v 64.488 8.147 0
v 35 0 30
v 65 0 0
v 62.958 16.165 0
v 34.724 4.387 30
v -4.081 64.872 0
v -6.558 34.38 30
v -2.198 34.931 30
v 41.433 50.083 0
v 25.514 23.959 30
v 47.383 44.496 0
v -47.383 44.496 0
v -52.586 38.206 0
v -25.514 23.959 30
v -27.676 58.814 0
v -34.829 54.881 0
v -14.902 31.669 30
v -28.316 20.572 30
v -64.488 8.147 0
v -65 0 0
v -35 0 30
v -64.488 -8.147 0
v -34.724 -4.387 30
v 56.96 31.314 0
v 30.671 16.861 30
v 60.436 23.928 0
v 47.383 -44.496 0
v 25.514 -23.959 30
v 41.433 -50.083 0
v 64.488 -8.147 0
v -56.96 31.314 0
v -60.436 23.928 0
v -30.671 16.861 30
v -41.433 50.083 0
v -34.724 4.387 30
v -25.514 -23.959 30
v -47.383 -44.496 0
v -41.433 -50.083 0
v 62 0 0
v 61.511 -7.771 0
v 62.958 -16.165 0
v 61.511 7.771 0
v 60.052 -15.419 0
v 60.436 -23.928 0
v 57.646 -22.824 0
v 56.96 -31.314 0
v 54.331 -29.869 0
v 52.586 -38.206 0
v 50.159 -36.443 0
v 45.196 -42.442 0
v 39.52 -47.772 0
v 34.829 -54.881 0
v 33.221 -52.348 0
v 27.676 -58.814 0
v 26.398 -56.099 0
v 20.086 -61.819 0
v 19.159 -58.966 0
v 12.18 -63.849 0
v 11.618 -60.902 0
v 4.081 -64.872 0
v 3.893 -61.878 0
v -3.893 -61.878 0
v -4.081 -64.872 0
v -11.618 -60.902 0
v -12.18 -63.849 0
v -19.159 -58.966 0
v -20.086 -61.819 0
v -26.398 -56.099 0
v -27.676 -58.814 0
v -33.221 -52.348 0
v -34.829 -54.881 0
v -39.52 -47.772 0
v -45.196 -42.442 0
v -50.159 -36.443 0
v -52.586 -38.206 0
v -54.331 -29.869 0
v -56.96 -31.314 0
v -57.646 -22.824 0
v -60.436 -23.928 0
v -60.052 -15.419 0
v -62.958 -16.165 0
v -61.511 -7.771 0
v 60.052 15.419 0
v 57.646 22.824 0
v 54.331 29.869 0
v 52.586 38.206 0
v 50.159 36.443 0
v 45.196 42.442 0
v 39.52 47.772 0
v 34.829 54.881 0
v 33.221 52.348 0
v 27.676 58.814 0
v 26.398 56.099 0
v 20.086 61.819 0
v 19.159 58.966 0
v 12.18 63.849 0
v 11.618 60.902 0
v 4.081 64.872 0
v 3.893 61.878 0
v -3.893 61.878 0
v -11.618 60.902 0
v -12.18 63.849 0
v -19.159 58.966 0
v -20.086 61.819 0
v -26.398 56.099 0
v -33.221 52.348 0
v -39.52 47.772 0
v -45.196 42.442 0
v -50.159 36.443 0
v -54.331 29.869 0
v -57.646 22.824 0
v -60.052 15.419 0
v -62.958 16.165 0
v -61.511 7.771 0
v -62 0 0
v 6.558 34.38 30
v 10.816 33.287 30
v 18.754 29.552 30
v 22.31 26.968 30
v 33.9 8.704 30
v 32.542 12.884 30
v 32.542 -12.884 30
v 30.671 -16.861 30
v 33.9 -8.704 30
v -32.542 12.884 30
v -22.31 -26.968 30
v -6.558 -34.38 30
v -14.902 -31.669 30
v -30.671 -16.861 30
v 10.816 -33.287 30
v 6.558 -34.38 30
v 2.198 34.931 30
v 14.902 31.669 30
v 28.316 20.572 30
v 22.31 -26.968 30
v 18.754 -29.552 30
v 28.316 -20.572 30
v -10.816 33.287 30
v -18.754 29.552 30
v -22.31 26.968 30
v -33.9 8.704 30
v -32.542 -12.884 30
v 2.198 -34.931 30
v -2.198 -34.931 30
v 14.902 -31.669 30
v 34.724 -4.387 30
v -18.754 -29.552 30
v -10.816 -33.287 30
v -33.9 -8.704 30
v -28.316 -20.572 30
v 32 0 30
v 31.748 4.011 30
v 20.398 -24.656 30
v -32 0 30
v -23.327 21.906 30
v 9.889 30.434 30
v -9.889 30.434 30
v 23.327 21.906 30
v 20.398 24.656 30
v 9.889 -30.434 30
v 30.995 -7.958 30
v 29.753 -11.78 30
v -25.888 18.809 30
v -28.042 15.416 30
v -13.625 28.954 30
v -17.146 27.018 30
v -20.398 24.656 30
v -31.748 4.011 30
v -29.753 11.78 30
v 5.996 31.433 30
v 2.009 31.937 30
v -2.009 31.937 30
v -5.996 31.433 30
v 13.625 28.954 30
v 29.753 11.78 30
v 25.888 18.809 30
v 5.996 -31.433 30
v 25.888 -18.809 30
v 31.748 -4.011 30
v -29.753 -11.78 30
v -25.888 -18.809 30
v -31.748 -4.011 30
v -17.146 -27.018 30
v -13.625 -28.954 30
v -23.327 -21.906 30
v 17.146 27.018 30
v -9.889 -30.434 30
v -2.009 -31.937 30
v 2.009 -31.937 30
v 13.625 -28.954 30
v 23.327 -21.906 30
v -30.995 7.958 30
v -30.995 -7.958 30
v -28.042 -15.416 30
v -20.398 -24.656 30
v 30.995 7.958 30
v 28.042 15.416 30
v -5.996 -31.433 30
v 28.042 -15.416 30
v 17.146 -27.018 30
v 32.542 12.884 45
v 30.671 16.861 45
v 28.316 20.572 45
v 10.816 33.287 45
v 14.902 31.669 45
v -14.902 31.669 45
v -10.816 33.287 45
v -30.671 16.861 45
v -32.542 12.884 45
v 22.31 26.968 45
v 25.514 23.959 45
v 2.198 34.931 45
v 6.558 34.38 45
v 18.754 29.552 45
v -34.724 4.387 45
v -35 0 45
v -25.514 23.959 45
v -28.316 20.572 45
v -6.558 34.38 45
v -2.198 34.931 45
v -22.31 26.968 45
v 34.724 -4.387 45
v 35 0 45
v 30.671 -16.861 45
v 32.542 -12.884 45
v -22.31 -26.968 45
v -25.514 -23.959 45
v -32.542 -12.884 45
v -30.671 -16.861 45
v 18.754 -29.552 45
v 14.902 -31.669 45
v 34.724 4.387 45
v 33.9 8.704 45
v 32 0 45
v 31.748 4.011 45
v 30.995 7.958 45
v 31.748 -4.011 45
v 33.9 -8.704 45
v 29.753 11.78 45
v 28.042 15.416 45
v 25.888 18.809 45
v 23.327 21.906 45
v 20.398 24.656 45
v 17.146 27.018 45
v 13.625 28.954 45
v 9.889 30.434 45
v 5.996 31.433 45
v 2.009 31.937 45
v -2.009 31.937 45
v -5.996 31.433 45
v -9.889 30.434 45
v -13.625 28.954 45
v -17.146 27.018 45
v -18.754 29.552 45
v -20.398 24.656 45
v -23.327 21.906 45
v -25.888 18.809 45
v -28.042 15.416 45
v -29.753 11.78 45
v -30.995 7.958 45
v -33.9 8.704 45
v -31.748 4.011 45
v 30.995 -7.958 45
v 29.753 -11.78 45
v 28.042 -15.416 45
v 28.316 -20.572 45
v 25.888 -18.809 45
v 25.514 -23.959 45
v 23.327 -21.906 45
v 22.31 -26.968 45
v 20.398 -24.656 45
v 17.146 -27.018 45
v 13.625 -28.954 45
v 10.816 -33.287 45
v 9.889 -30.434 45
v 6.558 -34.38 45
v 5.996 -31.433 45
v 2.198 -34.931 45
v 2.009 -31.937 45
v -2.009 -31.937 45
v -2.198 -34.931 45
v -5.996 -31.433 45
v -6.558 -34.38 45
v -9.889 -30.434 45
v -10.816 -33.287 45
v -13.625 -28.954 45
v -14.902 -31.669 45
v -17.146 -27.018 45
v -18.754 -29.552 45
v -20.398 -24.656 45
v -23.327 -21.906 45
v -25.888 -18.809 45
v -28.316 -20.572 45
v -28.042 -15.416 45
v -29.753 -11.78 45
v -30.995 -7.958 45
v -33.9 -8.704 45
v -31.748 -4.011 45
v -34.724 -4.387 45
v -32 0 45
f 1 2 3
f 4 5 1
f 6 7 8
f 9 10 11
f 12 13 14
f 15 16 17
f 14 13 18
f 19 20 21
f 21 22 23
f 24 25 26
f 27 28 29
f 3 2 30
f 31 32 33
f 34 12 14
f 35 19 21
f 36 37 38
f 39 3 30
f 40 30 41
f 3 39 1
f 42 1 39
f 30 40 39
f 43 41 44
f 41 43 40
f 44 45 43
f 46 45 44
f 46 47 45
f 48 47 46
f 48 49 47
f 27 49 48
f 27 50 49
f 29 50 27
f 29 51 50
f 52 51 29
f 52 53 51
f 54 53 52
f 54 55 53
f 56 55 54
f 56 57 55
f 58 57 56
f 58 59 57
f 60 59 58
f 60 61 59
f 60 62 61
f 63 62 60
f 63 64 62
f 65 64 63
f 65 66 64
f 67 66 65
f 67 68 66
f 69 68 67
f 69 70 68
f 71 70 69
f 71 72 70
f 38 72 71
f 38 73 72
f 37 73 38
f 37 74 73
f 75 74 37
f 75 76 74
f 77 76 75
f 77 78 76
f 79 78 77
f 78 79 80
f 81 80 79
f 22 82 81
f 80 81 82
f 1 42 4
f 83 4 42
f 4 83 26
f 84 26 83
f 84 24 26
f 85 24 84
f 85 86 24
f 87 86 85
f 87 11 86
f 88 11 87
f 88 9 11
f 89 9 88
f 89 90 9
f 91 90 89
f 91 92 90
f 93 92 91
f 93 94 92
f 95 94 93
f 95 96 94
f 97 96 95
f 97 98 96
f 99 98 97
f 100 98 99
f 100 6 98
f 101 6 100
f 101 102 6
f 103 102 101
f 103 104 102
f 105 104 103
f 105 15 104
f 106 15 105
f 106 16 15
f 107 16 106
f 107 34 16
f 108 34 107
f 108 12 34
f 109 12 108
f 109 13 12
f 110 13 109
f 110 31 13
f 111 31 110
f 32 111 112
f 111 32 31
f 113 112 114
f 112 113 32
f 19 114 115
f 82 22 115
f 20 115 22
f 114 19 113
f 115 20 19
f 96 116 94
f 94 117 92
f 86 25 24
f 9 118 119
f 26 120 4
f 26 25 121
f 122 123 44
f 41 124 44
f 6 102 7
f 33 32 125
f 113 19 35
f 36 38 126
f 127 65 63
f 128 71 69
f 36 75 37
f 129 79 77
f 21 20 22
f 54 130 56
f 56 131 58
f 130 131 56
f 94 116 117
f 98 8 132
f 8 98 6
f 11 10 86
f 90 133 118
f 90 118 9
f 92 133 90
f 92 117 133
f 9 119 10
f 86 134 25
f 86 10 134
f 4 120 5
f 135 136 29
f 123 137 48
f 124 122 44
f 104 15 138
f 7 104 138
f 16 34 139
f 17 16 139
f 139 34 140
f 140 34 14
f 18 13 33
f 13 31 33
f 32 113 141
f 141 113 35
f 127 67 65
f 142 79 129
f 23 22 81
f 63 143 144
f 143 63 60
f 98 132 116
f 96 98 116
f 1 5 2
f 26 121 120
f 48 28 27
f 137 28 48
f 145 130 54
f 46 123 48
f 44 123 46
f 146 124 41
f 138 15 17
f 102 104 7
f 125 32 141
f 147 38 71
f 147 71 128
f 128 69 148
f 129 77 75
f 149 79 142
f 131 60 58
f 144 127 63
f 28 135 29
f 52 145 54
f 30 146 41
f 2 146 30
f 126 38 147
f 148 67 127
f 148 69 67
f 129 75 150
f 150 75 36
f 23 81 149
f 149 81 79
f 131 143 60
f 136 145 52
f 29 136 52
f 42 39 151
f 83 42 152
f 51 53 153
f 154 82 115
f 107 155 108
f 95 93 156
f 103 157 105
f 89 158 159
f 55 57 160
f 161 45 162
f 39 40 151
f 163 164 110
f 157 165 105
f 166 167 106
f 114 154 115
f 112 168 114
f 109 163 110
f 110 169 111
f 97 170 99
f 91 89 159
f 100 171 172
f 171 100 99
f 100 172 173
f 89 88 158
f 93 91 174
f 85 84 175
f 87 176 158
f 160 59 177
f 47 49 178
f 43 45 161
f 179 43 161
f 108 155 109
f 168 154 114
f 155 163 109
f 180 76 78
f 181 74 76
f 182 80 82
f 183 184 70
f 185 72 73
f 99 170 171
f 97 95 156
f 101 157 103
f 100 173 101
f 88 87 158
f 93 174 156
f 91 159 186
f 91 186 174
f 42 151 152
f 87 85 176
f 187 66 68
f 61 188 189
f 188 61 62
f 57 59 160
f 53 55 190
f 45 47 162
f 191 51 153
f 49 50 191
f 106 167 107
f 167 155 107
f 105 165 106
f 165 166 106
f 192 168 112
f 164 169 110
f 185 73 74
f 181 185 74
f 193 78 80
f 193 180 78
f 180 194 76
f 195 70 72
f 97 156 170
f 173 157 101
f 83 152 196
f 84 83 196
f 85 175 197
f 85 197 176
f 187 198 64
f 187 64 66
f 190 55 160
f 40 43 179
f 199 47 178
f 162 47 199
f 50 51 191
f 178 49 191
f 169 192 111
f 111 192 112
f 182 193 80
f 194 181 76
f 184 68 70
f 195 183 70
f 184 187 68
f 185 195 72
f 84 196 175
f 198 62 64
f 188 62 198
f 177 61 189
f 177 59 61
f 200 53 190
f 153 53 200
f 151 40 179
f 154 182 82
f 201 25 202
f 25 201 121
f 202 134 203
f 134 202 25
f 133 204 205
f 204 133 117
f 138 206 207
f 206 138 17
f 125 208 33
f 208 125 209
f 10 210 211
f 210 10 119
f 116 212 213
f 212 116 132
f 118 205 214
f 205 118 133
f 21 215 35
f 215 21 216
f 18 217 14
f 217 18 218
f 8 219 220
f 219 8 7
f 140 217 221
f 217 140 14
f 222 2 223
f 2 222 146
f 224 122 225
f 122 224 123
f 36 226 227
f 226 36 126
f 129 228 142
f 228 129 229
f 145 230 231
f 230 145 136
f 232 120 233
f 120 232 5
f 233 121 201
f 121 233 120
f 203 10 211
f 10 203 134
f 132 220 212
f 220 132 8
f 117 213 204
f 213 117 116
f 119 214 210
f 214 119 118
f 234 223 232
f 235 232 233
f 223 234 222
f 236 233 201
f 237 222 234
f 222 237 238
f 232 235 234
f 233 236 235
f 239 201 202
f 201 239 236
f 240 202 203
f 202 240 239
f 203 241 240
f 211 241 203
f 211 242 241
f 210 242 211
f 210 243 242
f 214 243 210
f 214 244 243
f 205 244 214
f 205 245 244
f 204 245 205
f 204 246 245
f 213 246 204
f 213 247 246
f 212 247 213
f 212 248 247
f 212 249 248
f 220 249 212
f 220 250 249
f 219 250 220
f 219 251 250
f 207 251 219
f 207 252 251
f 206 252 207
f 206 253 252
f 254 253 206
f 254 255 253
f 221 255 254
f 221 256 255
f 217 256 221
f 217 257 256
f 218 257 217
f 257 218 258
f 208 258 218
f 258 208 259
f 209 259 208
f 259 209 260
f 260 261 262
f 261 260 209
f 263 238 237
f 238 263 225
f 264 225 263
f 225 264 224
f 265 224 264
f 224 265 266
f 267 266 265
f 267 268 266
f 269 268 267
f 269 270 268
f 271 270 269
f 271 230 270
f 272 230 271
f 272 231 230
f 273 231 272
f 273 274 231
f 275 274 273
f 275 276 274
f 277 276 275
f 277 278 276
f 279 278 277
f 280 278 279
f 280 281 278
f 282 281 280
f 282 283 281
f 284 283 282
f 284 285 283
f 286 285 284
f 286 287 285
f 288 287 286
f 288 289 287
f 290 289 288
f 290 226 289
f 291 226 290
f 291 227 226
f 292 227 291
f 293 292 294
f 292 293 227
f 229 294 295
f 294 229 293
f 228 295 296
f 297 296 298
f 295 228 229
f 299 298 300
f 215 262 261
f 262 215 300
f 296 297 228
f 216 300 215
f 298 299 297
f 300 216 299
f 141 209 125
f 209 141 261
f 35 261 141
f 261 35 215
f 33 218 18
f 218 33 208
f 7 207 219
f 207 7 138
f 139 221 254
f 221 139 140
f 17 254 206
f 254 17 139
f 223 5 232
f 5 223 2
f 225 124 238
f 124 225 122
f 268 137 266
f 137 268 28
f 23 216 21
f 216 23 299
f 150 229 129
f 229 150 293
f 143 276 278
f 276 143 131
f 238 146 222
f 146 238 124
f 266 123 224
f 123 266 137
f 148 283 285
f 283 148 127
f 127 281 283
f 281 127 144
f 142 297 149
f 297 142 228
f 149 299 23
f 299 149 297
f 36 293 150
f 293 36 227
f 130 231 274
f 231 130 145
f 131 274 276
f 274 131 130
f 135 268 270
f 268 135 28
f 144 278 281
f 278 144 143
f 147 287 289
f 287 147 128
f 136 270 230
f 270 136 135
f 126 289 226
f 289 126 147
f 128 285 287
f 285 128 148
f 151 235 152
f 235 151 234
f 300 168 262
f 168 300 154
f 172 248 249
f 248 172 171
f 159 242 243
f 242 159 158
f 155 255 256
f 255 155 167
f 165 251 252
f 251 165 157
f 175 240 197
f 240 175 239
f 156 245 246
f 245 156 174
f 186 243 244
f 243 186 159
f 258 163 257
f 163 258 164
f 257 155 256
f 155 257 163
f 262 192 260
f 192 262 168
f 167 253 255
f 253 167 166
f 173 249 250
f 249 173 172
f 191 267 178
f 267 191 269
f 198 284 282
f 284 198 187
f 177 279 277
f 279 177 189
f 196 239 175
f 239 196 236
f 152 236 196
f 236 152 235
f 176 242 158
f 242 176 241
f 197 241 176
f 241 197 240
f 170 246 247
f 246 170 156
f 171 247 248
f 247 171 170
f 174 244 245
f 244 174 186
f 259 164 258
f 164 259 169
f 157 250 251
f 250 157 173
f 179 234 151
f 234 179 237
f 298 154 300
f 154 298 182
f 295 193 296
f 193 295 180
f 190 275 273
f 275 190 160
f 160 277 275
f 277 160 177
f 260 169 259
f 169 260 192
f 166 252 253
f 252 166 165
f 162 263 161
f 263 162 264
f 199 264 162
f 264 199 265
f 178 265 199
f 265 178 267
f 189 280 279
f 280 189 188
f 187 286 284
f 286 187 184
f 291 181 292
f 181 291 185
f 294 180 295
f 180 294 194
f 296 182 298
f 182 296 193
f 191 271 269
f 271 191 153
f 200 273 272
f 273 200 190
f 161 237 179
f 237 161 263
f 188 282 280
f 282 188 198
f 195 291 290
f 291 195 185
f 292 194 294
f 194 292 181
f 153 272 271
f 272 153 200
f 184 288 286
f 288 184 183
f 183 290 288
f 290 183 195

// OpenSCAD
$fn = 50;


difference() {
	union() {
		translate(v = [0, 0, 0]) {
			rotate(a = [0, 0, 0]) {
				difference() {
					union() {
						cylinder(h = 30, r1 = 65.0000000000, r2 = 35.0000000000);
					}
					union() {
						cylinder(h = 30, r1 = 62.0000000000, r2 = 32.0000000000);
					}
				}
			}
		}
		translate(v = [0, 0, 30]) {
			rotate(a = [0, 0, 0]) {
				difference() {
					union() {
						cylinder(h = 15, r = 35.0000000000);
					}
					union() {
						cylinder(h = 15, r = 32.0000000000);
					}
				}
			}
		}
	}
	union();
}
